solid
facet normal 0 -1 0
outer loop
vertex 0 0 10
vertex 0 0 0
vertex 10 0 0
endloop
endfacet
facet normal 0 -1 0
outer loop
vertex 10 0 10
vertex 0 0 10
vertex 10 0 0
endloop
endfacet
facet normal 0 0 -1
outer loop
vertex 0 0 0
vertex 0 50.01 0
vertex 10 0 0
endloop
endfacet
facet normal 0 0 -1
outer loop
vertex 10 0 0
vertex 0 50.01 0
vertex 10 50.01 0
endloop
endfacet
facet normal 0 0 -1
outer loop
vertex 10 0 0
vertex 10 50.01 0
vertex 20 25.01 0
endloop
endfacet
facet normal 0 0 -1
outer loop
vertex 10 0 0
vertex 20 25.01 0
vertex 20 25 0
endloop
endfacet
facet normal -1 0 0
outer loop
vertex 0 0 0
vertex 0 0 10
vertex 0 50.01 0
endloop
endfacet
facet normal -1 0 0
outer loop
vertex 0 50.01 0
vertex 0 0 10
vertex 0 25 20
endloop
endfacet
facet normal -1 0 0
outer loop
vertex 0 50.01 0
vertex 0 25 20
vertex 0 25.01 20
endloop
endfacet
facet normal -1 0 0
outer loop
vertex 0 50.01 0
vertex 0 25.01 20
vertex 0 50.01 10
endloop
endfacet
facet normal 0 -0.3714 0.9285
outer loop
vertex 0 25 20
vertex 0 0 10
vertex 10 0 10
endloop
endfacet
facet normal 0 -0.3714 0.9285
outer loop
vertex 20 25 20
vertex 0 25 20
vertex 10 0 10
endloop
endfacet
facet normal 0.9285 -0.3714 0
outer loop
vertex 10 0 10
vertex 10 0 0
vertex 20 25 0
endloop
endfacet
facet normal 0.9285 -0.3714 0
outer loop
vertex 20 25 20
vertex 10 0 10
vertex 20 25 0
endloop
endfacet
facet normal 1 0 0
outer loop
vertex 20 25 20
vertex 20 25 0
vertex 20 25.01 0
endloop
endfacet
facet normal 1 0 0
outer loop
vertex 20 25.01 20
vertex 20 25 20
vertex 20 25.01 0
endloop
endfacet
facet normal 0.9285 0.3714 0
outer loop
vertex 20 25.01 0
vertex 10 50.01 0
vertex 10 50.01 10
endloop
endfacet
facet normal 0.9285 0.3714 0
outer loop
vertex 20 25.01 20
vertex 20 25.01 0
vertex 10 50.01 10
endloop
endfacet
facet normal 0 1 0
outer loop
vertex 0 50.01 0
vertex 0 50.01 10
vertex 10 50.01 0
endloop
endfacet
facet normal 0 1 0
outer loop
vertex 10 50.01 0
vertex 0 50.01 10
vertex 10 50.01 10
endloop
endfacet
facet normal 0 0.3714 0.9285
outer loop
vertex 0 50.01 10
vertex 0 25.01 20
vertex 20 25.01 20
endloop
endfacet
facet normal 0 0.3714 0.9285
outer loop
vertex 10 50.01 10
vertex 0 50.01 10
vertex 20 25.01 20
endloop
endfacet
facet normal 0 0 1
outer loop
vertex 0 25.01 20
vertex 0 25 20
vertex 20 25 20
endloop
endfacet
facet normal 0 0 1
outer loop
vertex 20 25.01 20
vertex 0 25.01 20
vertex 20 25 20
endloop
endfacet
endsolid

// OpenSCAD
// file: beams.scad
/* 
 * openscad beams library
 * create complex openscads objects from frames which are defining beams
 * (constructed like a ship body or airplane hull)
 *
 * https://github.com/Stemer114/openscad_beams
 * http://www.thingiverse.com/Stemer114/designs
 * 
 *    Copyright (C) 2016 Stemer114 (stemer114@merunka.de)
 *
 *    This program is free software: you can redistribute it and/or modify
 *    it under the terms of the GNU General Public License as published by
 *    the Free Software Foundation, either version 3 of the License, or
 *    (at your option) any later version.
 *
 *    This program is distributed in the hope that it will be useful,
 *    but WITHOUT ANY WARRANTY; without even the implied warranty of
 *    MERCHANTABILITY or FITNESS FOR A PARTICULAR PURPOSE.  See the
 *    GNU General Public License for more details.
 *
 *    You should have received a copy of the GNU General Public License
 *    along with this program.  If not, see <http://www.gnu.org/licenses/>.
 *

 * Credits: 
 *          for some of the examples
 *          MCAD Library - Polyholes Copyright 2011 Nophead (of RepRap fame)
 *          It is licensed under the terms of Creative Commons Attribution 3.0 Unported.
 *          https://github.com/SolidCode/MCAD/blob/master/polyholes.scad
 *
 *          BeamsVersion, libEcho and code structure inspired by 
 *          OpenSCAD Parts Library by randyy is licensed under the GNU - LGPL license. 
 *          http://www.thingiverse.com/thing:6021
 *
 */

//**** house keeping
//we define these as functions to avoid assignment problems from caller modules
function BeamsVersion() = 1.0;  //library version
function ep()=0.01;  //epsilon environment to avoid non-manifold objects


//**** module definitions

// a single rectangular frame, usually very thin
// params: w - width of frame (x direction)
//         h - height of frame (z direction)
//         d - thickness of frame (y direction, usually very thin, e.g. 0.1mm)
//         o - offset vector from origin (probably best to use x and y offsets only here for starters)
//         r - rotation vector (probably best to use only z rotation here for starters)
//         vec - vector interface, used instead of the named params
//         the vector must use the following structure (example)
//           w  h  rotation    offset        thickness
//          [3, 4, [0, 0, 90], [0, -1.5, 0], ep ],   //start (front center)
//         there is no checking other than length checking to branch in the interface
//         so better make sure the vector conforms
//         the vector interface allows you to define a list of vectors in your source file
//         and supply them all at once to the beam module (see below)
//         this probably makes more sense if you look at some of the example files
module frame(
        w = 10,  //width
        h = 10,  //height
        r = [0, 0, 0],  //rotation vector
        o = [0, 0, 0],   //offset vector
        d = ep(),  //thickness (normally very thin)
        vec = [],  //vector, default none
        )
{
    if ( len(vec)==5 ) {
        //use vector interface
        translate( vec[3] )
            rotate( vec[2] )
            cube([ vec[0], vec[4], vec[1] ]);
    } else {
        //use single param interface
        translate(o)
            rotate(r)
            cube([w, d, h]);
    }  //end else
}  //end module

// a single beam consisting of two frames at either end, connected by a hull
// to disable hull, use no_hull=true (for debugging)
// beam uses the vector interface (see above in module frame)
module beam(
        frame1 = [10, 10, [0, 0, 0], [0, 0, 0], ep() ],
        frame2 = [10, 10, [0, 0, 0], [0, 20, 0], ep() ],
        no_hull = false,   
        )
{
    if ( no_hull ) {
        frame(vec=frame1);
        frame(vec=frame2);
    } else {
        hull() {
            frame(vec=frame1);
            frame(vec=frame2);
        }  //end hull
    }  //end else
}  //end module

// a beam consisting of 2 or more frames connected by hulls
// uses the vector interface (see above)
// see example scad files in library source to get an idea how to use this
module beam_multi(frames=[], no_hull=false )
{
    if ( len(frames)<2 ) {
        echo("WARNING: beam_multi: number of frames too small (must be at least 2): ", len(frames) );
    } else {
        for ( frame = [0:len(frames)-2] ) {
            beam( frames[frame], frames[frame+1], no_hull=no_hull );
        } //end for

    }
}

/*************************************************
 * interface 
*/

libEcho=true;
if (libEcho!=false){ 
	echo("****************************************************************  ");
    echo(" beams scad library loaded.");
    echo(" Version: ", BeamsVersion() );
    echo(" usage: - include beams.scad in your project dir,");
    echo("        - then add include <beams.scad> to your script ");
	echo("        - to turn off this header, place libEcho=false; in your script");
    echo("        - see examples scad files to some inspiration")
	echo("****************************************************************  ");
}
// main file
/*
 * a collection of simple examples for beams library
 * example for using openscad beams library
 *
 */

ep = 0.01;  //epsilon environment

include <beams.scad>

//          w   h   rotation   offset    thickness
params = [ 
           [10, 10, [0, 0, 0], [0, 0, 0], ep ],
           [20, 20, [0, 0, 0], [0, 25, 0], ep ],
           [10, 10, [0, 0, 0], [0, 50, 0], ep ] 
         ];

beam_multi(frames=params );
